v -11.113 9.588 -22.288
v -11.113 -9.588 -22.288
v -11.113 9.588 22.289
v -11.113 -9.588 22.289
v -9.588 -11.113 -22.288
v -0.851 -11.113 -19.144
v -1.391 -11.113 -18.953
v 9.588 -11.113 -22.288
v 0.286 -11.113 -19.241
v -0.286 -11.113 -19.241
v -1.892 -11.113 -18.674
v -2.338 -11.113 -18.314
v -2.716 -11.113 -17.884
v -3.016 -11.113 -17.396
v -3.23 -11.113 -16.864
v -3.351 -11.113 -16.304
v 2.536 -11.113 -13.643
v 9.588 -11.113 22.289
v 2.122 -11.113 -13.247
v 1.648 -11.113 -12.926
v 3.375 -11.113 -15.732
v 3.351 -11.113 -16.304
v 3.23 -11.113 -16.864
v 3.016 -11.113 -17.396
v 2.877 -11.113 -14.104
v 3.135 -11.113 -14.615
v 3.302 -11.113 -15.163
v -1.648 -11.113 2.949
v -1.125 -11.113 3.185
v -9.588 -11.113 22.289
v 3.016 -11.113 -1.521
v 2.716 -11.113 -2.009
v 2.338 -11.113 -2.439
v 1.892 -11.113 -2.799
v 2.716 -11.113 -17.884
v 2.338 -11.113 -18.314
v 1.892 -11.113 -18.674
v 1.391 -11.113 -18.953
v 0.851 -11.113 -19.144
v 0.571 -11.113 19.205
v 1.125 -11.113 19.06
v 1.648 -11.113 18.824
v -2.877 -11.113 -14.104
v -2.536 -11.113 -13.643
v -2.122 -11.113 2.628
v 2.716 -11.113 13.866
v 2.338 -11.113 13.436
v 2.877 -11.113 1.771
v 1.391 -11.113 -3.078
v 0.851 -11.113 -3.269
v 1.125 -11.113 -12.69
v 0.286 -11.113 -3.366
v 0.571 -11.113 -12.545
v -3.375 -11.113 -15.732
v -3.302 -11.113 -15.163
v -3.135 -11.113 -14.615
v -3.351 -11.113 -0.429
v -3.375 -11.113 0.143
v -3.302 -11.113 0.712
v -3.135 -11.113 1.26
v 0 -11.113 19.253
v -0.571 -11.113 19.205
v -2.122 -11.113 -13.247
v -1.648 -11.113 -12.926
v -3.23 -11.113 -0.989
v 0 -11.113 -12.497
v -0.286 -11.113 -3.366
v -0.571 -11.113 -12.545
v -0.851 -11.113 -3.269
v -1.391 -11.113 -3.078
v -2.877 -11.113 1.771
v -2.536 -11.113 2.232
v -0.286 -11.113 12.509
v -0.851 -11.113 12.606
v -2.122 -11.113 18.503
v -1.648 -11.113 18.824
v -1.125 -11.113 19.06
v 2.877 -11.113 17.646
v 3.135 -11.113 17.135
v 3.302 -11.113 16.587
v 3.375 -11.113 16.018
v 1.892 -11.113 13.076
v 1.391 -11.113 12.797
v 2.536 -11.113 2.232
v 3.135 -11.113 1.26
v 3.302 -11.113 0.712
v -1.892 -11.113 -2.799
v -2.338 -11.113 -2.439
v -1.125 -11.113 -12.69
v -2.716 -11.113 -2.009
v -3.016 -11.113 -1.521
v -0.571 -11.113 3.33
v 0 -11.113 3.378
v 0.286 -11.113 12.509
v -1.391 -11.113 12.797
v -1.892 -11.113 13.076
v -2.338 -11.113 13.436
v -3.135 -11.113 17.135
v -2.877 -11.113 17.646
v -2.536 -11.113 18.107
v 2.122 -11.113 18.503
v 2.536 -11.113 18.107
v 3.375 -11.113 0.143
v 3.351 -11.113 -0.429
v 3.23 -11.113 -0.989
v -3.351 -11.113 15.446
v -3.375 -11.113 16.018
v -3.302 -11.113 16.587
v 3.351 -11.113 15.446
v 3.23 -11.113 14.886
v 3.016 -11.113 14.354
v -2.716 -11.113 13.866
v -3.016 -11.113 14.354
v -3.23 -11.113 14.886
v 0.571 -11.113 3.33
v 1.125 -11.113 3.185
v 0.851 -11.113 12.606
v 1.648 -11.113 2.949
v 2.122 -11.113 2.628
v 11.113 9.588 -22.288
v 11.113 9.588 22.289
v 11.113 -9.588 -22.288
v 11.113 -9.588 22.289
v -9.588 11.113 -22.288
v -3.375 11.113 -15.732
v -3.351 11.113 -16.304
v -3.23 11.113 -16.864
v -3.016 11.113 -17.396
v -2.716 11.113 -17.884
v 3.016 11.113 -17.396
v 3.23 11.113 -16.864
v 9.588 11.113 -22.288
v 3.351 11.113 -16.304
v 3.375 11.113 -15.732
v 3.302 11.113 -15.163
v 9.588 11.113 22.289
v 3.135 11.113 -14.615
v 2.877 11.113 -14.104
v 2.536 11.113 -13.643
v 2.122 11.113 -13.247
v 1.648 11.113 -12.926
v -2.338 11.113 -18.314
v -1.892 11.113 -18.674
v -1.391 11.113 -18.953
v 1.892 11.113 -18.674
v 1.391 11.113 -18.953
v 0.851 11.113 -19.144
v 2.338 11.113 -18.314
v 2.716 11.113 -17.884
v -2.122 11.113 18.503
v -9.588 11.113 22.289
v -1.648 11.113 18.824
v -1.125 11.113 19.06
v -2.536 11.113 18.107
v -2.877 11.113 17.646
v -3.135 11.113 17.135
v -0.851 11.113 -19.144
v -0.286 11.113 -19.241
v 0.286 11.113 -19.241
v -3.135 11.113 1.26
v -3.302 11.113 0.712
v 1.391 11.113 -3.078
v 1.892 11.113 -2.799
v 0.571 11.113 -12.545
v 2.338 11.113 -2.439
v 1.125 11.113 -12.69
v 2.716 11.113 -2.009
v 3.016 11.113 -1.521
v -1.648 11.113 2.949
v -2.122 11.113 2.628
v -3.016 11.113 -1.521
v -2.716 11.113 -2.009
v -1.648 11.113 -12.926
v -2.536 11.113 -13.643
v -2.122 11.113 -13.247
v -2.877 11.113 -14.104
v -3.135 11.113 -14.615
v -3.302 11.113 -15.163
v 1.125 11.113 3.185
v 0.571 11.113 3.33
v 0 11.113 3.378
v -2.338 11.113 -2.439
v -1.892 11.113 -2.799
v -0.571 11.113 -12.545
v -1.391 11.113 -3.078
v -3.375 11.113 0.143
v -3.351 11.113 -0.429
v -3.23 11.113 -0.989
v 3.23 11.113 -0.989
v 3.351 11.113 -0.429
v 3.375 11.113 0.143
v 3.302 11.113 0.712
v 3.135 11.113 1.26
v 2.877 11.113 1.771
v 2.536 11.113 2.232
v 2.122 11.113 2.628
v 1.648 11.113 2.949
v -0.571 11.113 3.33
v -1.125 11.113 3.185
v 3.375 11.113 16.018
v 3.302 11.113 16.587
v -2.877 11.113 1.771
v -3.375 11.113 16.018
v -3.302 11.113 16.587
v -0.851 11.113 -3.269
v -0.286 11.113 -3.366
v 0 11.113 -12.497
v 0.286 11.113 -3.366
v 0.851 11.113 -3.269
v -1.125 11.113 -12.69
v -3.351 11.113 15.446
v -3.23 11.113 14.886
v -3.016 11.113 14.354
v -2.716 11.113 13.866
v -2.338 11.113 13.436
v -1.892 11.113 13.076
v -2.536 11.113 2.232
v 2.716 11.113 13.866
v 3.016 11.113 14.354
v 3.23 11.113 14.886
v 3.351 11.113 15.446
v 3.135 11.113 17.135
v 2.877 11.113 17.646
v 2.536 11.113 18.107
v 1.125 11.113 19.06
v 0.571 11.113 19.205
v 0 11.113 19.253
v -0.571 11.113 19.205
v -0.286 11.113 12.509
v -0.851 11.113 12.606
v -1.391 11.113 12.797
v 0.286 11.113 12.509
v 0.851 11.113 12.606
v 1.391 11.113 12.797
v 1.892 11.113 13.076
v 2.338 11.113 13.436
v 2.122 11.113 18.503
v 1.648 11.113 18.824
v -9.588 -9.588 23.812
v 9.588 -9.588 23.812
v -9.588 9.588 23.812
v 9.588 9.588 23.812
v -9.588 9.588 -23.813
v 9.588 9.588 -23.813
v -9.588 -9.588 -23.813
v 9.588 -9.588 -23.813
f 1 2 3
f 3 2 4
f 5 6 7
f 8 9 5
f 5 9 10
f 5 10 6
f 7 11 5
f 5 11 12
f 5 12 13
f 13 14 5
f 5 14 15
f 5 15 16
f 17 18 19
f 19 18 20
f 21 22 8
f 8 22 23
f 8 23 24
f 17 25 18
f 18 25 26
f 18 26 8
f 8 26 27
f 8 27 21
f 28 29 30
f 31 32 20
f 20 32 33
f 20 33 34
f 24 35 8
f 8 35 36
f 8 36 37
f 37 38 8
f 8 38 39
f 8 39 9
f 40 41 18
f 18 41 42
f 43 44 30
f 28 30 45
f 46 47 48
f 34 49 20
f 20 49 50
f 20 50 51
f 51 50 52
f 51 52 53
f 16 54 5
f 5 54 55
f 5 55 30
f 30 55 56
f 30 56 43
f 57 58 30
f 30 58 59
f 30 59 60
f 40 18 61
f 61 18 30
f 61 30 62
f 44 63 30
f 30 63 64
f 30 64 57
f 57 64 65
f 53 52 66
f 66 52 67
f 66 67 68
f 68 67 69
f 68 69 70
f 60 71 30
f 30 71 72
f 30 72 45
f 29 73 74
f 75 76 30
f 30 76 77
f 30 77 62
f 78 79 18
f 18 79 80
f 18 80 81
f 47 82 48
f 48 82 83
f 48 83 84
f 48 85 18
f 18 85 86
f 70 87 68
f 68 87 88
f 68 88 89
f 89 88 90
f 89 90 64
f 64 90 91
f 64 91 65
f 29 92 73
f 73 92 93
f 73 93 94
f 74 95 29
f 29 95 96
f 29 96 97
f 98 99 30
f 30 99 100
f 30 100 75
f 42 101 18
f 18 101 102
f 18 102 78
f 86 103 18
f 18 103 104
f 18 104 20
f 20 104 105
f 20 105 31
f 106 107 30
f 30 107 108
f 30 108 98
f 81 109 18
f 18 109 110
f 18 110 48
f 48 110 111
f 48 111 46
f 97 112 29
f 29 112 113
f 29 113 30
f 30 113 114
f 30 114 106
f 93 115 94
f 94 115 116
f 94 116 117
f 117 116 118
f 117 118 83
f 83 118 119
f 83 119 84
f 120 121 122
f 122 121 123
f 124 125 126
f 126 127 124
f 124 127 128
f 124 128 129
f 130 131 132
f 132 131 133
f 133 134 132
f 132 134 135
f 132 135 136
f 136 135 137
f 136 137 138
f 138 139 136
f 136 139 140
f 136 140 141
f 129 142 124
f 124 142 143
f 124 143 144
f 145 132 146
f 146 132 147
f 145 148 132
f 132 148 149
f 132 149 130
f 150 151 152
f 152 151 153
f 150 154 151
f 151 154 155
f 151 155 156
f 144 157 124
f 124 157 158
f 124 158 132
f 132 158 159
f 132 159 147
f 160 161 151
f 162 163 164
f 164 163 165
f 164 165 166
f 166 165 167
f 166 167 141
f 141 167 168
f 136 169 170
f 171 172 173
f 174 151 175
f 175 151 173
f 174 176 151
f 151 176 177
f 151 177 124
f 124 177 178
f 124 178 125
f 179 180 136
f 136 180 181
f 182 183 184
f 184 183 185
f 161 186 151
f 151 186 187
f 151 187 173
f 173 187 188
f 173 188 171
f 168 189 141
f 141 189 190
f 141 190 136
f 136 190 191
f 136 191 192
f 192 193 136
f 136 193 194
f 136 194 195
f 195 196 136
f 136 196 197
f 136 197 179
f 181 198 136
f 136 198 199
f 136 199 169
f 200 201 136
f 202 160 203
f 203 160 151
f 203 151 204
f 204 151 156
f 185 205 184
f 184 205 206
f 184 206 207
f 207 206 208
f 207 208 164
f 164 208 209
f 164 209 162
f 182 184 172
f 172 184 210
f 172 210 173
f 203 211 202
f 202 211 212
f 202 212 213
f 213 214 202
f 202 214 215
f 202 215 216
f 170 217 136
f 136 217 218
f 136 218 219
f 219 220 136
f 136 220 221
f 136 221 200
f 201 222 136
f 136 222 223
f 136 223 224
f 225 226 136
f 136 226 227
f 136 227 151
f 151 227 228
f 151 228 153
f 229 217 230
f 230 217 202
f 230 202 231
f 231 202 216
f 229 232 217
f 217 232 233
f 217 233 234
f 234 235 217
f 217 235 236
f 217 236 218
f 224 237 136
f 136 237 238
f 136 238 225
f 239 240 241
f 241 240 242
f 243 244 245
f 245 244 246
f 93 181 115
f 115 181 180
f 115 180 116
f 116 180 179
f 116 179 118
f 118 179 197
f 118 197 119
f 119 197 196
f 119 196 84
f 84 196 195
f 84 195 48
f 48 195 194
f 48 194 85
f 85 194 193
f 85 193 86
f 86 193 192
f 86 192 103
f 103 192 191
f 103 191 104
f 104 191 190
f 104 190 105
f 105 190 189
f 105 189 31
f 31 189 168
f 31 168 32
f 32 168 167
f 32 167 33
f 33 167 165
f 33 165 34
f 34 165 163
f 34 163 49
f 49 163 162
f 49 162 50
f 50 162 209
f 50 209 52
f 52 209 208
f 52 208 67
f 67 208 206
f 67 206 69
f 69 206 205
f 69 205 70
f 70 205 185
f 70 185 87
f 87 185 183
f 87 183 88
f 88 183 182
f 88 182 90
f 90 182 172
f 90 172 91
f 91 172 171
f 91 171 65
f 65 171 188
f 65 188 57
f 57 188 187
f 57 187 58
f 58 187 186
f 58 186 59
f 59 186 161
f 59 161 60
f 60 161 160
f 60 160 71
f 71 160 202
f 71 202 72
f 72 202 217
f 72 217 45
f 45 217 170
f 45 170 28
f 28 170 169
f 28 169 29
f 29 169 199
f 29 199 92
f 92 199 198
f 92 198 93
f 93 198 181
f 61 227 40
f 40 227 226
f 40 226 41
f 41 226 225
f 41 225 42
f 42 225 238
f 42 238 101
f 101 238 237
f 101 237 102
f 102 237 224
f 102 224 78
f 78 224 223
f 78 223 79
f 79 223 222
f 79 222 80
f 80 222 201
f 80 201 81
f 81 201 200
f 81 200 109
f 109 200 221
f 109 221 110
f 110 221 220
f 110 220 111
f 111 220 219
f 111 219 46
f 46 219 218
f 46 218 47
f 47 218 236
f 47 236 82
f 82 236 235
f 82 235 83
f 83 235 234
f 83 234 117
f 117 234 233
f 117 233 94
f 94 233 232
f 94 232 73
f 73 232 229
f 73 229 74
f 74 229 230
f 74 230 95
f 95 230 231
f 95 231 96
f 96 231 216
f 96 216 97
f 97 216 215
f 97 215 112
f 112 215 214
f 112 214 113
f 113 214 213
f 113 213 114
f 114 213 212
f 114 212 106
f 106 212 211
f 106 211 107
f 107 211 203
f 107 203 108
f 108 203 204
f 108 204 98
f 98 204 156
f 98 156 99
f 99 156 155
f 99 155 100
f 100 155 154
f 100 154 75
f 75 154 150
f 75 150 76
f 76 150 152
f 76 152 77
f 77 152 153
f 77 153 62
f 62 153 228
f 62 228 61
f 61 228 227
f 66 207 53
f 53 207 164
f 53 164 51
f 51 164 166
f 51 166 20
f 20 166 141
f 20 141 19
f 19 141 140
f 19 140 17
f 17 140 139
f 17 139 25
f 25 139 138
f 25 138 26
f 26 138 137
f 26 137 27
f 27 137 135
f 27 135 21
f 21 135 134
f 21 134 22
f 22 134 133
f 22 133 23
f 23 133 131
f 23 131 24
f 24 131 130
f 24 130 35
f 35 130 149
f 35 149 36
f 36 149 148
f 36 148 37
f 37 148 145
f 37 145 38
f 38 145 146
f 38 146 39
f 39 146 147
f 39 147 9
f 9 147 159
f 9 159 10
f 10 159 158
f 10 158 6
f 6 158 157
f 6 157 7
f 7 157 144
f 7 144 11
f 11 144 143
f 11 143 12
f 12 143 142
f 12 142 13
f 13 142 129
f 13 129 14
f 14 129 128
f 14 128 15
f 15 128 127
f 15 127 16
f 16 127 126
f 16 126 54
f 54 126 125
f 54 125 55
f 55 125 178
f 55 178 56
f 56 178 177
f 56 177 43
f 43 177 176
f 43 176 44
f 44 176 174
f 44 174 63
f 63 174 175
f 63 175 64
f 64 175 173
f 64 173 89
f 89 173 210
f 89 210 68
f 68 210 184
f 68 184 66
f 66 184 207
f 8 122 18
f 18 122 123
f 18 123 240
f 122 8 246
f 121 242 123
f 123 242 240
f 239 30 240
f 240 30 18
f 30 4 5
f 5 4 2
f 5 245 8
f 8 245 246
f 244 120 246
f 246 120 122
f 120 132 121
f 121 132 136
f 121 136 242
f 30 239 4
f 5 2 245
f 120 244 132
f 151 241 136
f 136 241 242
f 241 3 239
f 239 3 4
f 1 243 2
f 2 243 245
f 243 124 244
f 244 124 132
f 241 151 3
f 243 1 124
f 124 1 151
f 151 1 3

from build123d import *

# Parameters (mm, degrees)
SKETCH1_W               = 22.225
SKETCH1_H               = 22.225
BOSS_EXTRUDE1_DEPTH     = 23.8125
F_1_4_CLEARANCE_HOLE1_D = 6.7564
CHAMFER1_SIZE           = 1.524


with BuildPart() as part:
    # Sketch1 → Boss-Extrude1 (new, symmetric)
    with BuildSketch(Plane.XY):
        Rectangle(SKETCH1_W, SKETCH1_H)
    extrude(amount=BOSS_EXTRUDE1_DEPTH, both=True)

    # 1/4 Clearance Hole1 (through all)
    with Locations(Plane(origin=(0, 11.1125, 0), x_dir=(1, 0, 0), z_dir=(0, 1, 0))):
        with Locations((0, 15.875), (0, -15.875), (0, 0)):
            Hole(F_1_4_CLEARANCE_HOLE1_D / 2)

    # Chamfer1
    chamfer1_edges = [part.edges().sort_by_distance(p)[0] for p in [
        (11.1125, 0, 23.8125),
        (0, 11.1125, 23.8125),
        (-11.1125, 0, 23.8125),
        (0, 11.1125, -23.8125),
        (11.1125, 0, -23.8125),
        (0, -11.1125, -23.8125),
        (-11.1125, 0, -23.8125),
        (-11.1125, 11.1125, 0),
        (11.1125, 11.1125, 0),
        (11.1125, -11.1125, 0),
        (-11.1125, -11.1125, 0),
        (0, -11.1125, 23.8125),
    ]]
    chamfer(chamfer1_edges, length=CHAMFER1_SIZE)


solid = part.part
